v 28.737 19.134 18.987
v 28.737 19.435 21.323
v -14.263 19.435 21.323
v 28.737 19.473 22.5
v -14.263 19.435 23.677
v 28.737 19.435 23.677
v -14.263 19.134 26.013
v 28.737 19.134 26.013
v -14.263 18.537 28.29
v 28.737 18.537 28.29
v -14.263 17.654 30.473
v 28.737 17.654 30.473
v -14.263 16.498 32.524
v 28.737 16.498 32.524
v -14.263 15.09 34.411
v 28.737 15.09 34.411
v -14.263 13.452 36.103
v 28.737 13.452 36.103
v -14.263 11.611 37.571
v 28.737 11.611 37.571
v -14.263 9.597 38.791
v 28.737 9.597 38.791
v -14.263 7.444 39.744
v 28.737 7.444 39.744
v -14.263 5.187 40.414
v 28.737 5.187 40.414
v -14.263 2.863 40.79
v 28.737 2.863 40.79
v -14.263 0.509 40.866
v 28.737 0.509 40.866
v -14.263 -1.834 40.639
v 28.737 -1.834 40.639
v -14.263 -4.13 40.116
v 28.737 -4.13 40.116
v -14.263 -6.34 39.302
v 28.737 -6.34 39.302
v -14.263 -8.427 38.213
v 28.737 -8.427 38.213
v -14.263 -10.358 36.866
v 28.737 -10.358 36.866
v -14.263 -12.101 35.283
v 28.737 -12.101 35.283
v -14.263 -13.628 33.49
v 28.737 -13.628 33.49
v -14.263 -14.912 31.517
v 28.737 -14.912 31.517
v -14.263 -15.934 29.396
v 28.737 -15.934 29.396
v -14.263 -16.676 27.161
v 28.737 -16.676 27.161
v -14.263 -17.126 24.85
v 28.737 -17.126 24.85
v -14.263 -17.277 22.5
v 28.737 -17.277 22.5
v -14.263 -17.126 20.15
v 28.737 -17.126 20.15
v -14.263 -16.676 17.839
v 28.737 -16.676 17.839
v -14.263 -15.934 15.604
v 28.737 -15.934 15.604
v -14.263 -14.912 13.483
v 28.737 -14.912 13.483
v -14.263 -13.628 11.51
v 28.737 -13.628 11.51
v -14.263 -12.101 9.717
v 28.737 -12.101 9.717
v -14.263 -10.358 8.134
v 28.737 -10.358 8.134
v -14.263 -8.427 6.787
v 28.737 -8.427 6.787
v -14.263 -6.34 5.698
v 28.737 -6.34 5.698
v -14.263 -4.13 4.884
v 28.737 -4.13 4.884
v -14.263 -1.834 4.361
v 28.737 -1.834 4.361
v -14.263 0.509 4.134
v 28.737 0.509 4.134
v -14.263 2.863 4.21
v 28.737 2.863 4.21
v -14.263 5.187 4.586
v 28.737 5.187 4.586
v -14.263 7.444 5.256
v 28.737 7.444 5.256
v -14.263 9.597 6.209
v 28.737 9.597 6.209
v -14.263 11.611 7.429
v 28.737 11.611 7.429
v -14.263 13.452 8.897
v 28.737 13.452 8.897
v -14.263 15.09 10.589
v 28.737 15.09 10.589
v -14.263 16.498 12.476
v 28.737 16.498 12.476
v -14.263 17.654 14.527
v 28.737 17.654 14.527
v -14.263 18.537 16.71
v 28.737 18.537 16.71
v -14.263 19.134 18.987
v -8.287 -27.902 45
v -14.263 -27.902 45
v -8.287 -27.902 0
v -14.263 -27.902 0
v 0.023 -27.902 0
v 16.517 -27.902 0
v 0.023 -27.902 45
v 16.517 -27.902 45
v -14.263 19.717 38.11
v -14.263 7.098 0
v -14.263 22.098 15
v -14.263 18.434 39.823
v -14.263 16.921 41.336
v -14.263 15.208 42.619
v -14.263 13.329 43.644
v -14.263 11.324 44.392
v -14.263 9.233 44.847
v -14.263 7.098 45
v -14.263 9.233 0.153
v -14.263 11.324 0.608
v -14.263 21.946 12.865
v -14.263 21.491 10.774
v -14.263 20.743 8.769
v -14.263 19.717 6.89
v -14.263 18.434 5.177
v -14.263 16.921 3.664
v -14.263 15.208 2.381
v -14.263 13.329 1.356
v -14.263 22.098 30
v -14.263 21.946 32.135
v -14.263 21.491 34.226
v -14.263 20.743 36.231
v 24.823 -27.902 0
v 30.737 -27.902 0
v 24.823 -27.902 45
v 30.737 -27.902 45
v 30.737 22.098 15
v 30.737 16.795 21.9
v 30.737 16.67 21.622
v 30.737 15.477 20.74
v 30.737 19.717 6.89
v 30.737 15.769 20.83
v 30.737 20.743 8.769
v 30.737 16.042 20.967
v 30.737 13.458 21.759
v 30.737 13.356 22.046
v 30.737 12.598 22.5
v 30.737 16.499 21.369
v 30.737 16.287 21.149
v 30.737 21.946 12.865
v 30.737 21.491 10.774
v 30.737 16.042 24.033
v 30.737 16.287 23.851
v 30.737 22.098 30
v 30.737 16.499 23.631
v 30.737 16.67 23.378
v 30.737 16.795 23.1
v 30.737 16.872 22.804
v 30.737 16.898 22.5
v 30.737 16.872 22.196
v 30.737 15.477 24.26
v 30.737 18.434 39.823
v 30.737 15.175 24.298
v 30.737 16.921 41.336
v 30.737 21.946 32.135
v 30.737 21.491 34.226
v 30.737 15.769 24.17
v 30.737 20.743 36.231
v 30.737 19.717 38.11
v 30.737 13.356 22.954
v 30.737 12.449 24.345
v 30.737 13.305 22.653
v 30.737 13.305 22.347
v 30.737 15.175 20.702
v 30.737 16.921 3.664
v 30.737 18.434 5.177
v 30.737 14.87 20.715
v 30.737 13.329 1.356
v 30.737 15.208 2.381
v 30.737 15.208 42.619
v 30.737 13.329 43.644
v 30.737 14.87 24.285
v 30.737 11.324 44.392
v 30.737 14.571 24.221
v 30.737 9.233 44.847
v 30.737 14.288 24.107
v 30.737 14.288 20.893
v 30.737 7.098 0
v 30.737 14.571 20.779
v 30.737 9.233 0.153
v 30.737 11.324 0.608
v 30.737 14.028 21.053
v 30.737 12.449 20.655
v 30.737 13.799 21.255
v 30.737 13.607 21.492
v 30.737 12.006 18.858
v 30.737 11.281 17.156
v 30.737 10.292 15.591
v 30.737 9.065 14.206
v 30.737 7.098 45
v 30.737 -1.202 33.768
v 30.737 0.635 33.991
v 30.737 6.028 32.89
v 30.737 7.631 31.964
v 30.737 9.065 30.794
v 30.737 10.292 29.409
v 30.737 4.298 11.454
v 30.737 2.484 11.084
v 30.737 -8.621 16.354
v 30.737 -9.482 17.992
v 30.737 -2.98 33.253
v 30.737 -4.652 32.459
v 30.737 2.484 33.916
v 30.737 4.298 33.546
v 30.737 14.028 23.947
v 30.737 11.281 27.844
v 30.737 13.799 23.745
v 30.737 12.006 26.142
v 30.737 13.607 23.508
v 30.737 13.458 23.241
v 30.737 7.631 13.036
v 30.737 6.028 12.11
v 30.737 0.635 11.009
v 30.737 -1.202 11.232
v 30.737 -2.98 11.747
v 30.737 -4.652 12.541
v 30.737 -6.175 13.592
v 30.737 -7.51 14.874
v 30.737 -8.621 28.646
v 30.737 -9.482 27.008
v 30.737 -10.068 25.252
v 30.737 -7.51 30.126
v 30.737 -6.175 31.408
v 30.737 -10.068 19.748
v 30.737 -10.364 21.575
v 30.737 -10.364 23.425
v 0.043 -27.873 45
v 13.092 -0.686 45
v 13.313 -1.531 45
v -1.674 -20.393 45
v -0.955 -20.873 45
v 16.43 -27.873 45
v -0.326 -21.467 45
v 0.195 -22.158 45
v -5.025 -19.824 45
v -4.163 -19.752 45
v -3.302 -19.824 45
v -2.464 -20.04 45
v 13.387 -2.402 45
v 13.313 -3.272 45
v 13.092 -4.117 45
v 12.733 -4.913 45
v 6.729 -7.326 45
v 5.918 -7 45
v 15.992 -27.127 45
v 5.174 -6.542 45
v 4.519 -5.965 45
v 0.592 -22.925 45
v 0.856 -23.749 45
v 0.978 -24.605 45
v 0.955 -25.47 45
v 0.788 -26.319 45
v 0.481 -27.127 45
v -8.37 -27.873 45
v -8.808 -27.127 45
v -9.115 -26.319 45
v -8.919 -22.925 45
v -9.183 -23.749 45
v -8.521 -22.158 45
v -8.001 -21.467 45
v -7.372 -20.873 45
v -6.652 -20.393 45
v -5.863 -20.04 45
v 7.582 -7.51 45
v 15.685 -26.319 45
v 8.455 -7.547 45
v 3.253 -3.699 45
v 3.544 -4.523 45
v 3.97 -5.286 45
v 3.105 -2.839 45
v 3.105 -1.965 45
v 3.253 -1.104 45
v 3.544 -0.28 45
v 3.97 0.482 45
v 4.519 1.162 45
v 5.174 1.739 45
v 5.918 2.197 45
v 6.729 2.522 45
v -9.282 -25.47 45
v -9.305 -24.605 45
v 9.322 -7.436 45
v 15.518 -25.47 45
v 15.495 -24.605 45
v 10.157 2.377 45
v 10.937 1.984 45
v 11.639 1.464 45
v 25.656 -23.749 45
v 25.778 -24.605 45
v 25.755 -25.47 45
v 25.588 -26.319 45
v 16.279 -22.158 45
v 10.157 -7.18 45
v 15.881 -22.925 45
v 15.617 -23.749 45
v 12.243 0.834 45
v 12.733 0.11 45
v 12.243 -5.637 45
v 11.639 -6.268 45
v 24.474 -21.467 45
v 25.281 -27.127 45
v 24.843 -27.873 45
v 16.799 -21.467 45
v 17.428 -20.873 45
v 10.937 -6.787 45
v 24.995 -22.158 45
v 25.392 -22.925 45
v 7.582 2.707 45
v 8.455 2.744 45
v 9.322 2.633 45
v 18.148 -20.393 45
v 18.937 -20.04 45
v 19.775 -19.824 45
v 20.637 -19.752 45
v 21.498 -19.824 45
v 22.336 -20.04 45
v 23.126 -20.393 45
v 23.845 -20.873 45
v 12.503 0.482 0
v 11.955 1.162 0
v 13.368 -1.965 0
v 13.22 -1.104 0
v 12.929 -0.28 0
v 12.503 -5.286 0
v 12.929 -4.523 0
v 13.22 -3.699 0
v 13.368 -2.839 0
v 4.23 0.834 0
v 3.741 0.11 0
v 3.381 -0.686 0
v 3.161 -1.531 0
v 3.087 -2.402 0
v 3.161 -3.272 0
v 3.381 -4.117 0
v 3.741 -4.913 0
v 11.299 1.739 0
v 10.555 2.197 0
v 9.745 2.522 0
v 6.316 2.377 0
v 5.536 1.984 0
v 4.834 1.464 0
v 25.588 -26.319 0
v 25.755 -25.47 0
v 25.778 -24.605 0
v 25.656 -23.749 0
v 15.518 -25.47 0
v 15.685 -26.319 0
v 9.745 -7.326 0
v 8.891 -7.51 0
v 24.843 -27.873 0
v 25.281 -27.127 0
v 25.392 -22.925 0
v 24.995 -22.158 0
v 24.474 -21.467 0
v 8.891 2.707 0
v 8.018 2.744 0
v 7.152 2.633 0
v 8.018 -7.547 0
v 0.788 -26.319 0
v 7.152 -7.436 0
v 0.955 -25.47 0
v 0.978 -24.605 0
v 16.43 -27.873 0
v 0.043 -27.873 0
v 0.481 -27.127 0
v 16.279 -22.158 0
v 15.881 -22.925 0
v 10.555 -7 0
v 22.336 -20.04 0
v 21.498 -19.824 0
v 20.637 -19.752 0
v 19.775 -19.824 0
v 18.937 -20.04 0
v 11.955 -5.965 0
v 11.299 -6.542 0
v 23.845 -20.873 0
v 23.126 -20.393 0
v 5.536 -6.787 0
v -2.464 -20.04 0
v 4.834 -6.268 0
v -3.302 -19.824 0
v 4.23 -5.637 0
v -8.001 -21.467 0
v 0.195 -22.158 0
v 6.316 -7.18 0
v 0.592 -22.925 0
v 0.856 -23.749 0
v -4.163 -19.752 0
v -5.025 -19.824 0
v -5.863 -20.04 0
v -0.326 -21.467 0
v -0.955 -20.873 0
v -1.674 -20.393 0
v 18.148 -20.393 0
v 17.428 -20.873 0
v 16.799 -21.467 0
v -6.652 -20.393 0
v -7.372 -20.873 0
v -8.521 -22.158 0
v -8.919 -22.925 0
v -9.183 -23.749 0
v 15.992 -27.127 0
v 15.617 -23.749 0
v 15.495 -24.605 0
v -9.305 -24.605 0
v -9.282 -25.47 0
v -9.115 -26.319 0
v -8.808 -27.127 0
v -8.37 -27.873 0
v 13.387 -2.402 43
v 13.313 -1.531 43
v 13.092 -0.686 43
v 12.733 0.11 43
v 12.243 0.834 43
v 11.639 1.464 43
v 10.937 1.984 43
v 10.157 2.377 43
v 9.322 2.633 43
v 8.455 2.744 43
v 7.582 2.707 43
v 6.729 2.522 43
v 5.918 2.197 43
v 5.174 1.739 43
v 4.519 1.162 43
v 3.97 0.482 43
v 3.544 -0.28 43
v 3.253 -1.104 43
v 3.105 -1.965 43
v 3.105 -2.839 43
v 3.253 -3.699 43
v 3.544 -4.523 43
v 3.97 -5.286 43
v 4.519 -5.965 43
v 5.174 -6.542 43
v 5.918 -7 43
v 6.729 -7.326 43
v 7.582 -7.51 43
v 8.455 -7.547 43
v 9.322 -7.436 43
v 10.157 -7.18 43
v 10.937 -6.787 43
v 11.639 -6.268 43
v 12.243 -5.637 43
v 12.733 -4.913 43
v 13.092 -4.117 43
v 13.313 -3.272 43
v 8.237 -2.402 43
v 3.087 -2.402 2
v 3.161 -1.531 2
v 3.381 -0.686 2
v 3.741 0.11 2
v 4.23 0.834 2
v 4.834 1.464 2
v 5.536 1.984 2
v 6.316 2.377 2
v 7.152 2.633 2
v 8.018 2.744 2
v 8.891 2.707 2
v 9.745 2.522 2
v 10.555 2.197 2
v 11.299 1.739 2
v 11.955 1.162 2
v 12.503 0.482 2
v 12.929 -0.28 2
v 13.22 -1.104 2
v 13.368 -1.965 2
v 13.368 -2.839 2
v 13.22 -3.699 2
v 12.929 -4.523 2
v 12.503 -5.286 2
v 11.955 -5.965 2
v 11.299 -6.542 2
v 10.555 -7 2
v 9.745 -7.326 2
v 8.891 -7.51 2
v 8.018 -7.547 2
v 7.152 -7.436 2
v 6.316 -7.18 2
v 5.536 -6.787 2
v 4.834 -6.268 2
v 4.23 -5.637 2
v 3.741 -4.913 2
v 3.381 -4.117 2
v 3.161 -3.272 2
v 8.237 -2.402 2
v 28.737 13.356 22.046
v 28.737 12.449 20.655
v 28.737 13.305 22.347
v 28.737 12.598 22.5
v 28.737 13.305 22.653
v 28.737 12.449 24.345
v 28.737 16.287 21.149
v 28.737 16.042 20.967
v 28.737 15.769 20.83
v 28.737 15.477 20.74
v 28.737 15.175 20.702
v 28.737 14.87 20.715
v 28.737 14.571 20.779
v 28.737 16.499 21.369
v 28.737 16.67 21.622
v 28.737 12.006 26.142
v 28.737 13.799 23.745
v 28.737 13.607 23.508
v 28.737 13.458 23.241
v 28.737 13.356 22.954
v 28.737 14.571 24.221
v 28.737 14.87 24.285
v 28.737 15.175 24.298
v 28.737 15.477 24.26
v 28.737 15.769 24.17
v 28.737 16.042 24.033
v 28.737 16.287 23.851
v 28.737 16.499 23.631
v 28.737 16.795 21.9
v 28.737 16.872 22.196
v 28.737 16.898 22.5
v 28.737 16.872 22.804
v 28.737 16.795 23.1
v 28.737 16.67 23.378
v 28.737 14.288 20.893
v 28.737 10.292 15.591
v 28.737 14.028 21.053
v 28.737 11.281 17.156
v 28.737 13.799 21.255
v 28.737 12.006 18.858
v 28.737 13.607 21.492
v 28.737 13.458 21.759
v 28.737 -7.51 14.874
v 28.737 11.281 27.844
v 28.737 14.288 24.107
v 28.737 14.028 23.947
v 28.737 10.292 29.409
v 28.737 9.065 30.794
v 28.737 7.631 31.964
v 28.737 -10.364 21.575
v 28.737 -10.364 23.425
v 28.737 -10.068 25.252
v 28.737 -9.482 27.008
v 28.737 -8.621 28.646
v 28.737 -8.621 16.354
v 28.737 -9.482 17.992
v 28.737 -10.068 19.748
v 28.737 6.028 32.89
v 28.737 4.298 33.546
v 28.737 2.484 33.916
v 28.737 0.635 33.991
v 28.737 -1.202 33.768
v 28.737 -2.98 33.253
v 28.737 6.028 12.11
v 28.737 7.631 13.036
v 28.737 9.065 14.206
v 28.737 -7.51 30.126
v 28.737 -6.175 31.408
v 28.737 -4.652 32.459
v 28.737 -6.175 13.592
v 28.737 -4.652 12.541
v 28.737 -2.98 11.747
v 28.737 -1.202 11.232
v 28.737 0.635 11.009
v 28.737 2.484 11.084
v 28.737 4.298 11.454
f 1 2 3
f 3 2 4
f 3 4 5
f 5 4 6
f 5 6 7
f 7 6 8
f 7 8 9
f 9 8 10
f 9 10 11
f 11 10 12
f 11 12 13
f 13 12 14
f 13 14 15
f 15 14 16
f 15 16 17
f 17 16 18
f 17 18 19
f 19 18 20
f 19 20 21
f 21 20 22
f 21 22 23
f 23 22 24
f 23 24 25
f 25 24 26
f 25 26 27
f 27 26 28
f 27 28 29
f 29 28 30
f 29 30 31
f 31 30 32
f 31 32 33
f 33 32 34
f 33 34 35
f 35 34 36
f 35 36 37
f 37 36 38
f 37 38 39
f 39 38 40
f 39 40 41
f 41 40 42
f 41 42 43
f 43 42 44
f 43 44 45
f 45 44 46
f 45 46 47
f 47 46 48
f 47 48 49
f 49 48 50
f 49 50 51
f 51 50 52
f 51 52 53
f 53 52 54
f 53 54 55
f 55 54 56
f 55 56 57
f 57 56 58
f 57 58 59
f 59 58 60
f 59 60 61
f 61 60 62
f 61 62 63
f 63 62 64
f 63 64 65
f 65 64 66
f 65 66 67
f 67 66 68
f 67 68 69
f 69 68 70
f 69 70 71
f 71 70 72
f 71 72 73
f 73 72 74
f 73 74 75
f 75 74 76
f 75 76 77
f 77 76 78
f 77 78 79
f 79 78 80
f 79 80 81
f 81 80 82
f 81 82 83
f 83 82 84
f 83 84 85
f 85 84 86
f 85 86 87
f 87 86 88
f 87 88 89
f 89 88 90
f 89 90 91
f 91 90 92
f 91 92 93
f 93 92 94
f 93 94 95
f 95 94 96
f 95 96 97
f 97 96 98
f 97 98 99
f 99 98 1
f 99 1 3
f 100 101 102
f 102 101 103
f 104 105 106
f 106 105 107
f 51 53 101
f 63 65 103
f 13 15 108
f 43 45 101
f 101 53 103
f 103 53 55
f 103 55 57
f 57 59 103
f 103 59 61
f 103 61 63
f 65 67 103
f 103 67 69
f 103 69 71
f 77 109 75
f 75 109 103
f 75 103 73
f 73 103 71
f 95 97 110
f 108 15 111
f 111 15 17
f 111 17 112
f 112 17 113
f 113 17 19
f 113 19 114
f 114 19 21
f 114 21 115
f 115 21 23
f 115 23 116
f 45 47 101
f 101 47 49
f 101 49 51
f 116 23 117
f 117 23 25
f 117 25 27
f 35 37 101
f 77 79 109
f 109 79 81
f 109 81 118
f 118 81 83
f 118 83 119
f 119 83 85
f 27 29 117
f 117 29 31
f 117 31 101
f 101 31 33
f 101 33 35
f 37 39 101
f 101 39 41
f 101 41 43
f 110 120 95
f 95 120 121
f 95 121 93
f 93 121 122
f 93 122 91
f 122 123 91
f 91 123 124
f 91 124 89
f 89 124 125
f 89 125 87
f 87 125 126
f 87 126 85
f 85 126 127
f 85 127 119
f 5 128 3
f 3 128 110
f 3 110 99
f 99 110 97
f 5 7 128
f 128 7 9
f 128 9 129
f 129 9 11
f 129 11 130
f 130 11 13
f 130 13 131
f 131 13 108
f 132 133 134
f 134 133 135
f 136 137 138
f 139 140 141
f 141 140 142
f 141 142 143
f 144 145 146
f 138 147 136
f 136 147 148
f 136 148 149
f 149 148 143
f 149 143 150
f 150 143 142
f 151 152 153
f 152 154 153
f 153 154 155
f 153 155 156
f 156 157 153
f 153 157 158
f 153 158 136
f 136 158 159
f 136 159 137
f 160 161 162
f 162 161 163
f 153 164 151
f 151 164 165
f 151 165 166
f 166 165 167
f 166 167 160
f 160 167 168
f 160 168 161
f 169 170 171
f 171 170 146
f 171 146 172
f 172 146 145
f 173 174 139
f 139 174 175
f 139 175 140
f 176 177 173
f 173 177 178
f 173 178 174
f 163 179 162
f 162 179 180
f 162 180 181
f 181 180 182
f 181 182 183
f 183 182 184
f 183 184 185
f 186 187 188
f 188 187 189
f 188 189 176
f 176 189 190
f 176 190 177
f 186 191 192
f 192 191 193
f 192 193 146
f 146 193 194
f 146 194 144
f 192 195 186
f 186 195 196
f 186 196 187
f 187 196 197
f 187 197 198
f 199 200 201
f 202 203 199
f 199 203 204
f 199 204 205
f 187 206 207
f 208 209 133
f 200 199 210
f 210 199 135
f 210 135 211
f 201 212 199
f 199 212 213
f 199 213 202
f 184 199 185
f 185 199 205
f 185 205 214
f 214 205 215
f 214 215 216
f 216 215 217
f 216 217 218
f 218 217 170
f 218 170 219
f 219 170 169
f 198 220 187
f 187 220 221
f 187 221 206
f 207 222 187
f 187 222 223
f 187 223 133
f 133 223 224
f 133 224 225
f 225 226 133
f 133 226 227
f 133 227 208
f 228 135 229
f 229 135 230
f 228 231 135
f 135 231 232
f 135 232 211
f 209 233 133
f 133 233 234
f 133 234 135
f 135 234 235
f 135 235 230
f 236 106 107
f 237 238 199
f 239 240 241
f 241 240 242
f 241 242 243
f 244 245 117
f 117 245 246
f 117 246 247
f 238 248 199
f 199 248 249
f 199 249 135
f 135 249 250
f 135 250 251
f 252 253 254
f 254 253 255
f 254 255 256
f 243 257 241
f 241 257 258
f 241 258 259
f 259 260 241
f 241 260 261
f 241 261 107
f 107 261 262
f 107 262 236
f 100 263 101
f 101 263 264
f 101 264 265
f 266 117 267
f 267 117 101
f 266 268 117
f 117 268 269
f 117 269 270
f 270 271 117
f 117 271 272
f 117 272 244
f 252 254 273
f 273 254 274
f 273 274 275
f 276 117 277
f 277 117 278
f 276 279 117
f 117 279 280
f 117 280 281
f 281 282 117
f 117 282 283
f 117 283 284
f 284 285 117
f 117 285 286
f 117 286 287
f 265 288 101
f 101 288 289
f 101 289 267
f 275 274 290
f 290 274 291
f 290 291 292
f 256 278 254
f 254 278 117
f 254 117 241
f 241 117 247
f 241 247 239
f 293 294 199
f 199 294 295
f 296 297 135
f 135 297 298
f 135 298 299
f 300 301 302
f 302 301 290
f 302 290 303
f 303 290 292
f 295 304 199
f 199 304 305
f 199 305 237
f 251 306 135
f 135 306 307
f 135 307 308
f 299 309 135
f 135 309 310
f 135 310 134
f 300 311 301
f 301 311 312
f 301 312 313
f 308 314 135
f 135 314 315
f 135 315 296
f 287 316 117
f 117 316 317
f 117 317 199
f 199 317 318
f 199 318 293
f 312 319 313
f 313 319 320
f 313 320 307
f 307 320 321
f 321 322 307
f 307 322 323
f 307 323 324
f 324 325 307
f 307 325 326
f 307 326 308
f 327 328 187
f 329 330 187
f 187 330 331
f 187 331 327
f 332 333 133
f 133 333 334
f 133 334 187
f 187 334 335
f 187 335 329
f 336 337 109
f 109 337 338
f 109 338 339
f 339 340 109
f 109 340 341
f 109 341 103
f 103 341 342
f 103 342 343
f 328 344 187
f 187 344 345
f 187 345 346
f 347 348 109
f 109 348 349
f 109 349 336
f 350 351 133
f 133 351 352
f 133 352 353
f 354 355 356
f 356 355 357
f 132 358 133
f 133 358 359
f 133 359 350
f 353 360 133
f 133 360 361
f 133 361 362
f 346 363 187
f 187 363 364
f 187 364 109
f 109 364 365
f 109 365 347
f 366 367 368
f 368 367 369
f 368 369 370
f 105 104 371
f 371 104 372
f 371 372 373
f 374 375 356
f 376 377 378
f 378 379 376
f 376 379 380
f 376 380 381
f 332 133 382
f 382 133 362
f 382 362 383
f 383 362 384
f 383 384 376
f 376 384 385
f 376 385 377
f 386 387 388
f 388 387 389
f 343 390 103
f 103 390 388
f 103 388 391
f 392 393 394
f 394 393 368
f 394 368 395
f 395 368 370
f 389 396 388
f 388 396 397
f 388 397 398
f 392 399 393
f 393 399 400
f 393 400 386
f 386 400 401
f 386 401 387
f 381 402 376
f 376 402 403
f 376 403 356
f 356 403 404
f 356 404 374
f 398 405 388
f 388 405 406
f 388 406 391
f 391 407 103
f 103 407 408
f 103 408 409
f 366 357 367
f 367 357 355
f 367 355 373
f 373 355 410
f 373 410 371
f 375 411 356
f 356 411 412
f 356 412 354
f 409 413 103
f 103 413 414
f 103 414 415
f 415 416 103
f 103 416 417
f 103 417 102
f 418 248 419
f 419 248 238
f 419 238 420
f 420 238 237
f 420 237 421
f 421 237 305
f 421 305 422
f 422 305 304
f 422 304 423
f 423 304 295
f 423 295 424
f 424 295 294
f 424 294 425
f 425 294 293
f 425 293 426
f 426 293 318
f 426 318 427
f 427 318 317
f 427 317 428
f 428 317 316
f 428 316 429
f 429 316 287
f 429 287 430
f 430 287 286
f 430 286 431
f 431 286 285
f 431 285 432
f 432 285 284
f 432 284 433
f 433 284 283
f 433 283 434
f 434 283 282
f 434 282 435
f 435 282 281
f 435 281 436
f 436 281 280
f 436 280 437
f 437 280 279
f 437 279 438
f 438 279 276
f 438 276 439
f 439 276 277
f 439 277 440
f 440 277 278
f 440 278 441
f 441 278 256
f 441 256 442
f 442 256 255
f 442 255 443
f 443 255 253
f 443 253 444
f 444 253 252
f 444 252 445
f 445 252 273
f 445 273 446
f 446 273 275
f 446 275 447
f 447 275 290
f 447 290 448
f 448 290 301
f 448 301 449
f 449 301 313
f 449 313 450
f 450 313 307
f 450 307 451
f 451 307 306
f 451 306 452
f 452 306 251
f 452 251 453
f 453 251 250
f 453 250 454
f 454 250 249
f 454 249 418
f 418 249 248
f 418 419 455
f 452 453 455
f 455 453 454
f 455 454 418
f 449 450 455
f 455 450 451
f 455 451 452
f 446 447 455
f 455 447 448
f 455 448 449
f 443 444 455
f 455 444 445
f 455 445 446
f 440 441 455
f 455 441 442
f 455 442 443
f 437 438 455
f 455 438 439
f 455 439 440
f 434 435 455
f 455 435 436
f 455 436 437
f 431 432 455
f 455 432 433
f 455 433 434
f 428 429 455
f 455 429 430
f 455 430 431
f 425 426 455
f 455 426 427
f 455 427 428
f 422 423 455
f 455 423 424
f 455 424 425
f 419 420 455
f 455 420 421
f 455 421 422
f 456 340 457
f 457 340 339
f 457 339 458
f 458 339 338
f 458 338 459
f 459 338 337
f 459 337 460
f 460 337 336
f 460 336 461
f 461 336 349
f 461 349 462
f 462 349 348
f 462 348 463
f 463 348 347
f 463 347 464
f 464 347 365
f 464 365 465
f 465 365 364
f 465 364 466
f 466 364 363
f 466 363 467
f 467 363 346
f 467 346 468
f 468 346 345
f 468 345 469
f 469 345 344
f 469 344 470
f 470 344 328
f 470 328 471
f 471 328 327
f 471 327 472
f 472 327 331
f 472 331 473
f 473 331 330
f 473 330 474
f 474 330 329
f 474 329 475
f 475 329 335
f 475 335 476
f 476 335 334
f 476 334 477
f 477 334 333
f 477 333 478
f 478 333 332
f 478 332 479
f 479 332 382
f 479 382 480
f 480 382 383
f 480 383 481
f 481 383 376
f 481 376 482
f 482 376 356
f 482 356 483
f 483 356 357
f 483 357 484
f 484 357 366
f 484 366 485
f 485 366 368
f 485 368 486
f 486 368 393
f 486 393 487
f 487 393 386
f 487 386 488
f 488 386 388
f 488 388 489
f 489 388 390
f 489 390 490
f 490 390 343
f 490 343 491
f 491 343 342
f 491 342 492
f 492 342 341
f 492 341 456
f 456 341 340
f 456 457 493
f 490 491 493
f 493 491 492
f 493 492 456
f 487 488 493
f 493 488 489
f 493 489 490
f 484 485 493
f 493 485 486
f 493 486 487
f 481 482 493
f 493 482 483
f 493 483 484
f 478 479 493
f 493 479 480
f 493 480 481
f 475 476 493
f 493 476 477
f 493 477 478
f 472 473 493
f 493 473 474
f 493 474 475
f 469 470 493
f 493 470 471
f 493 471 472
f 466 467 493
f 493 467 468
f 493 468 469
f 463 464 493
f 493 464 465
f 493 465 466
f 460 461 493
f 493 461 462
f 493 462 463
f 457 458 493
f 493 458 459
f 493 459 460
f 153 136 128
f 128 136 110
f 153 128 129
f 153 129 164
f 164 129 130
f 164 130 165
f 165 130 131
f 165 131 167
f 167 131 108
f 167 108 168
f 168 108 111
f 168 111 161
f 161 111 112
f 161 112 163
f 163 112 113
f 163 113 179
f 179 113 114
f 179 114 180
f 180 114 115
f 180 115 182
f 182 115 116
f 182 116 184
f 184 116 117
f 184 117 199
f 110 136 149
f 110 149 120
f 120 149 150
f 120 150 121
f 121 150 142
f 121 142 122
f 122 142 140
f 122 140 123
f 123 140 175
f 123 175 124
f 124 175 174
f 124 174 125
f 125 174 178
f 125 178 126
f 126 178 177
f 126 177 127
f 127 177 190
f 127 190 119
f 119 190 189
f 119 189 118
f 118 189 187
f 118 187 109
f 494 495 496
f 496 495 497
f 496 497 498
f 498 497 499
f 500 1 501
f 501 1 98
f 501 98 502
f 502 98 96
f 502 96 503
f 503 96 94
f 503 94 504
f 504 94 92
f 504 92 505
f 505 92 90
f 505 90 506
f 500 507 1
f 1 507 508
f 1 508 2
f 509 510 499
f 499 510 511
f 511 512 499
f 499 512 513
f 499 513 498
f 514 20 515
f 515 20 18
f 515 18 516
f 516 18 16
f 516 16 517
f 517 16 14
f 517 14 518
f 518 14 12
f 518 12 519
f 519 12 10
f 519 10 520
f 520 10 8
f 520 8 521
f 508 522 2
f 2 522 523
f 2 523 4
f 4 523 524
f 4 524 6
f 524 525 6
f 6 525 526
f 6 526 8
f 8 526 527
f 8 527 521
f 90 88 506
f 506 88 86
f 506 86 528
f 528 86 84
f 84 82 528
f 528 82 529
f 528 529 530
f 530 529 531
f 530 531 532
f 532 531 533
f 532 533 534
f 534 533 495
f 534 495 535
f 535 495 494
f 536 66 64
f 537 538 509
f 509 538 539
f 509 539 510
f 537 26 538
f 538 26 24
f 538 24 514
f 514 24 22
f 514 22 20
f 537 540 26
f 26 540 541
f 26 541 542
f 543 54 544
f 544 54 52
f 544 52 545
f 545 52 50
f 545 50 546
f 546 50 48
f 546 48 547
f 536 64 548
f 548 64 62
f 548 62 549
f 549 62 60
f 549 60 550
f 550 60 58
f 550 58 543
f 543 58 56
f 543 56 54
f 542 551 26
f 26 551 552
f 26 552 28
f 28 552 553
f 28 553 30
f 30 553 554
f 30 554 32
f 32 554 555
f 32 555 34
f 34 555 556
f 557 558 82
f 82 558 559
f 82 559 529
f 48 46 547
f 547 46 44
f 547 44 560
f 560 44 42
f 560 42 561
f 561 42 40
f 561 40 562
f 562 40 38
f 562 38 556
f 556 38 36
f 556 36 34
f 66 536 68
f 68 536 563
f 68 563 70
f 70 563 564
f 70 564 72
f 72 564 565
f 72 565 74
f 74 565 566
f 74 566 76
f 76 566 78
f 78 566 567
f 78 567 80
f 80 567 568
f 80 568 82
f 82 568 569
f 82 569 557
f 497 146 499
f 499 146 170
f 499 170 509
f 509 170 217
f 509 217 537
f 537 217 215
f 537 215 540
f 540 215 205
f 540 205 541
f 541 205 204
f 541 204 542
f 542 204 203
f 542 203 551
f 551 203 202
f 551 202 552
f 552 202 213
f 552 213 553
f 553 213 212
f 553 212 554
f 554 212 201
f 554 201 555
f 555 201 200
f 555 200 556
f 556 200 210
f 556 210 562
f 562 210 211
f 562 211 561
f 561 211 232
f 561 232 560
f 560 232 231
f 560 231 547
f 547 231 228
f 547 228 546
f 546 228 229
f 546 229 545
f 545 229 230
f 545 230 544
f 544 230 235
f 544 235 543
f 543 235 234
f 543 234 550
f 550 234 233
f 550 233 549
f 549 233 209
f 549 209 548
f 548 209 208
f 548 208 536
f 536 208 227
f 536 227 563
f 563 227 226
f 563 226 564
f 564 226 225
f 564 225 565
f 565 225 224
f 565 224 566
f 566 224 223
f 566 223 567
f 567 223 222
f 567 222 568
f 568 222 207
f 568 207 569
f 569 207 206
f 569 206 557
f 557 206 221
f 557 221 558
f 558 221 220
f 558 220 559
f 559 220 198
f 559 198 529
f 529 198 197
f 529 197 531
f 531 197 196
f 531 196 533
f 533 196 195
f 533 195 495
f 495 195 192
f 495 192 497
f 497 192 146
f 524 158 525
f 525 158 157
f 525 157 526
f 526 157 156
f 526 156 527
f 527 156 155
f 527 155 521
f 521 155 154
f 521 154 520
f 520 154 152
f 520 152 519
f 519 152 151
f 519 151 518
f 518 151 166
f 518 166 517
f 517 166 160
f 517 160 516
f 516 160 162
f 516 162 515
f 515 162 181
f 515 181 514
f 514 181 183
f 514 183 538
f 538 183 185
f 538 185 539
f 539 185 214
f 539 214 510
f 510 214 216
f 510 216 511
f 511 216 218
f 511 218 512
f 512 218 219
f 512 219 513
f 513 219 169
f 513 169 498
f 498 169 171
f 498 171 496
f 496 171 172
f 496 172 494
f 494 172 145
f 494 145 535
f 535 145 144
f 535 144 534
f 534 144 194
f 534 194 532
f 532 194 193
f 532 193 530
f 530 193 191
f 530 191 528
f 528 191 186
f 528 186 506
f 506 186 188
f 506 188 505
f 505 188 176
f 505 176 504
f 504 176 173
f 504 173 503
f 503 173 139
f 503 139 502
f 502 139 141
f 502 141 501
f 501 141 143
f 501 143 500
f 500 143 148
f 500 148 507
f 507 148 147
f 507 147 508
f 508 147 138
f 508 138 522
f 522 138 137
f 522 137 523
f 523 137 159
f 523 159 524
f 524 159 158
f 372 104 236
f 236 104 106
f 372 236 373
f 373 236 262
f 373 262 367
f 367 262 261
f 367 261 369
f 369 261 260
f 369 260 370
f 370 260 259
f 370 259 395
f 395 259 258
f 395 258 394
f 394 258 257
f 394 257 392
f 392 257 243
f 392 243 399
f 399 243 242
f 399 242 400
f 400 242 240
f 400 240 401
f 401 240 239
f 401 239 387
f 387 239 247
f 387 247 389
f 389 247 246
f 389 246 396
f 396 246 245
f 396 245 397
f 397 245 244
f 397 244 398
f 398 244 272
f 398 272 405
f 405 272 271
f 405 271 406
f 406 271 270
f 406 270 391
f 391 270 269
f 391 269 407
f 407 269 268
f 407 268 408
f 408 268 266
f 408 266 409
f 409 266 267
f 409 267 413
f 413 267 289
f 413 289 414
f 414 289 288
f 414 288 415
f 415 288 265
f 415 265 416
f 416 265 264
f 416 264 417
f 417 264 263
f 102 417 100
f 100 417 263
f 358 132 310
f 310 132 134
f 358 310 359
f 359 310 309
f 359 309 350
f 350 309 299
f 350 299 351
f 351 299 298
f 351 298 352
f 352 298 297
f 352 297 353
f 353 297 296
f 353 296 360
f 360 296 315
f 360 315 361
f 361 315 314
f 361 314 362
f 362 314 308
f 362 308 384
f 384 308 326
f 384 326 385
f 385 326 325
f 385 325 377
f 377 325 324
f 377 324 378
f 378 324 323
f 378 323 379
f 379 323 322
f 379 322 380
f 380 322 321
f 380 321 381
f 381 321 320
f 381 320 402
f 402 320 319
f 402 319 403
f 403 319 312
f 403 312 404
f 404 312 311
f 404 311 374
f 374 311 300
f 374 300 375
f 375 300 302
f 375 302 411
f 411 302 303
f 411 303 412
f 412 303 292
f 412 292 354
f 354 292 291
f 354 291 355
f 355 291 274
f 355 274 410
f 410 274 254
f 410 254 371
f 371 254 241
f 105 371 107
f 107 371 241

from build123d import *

# Parameters (mm, degrees)
SKETCH1_W           = 45
SKETCH1_H           = 50
BOSS_EXTRUDE1_DEPTH = 45
SKETCH2_R           = 5.2
CUT_EXTRUDE1_DEPTH  = 45
SKETCH9_R           = 5.15
CUT_EXTRUDE6_DEPTH  = 2
SKETCH10_R          = 5.15
CUT_EXTRUDE7_DEPTH  = 2
SKETCH12_R          = 18.375
CUT_EXTRUDE8_DEPTH  = 45
SKETCH13_W          = 45
SKETCH13_H          = 6.66747138
CUT_EXTRUDE9_DEPTH  = 46
SKETCH14_W          = 45
SKETCH14_H          = 6.66747138
BOSS_EXTRUDE2_DEPTH = 45
SKETCH15_R          = 18.375
CUT_EXTRUDE10_DEPTH = 45
FILLET1_R           = 15
SKETCH16_R          = 18.375
BOSS_EXTRUDE3_DEPTH = 2
SKETCH17_R          = 11.5
CUT_EXTRUDE11_DEPTH = 2
SKETCH18_R          = 1.8
CUT_EXTRUDE12_DEPTH = 2
BOSS_EXTRUDE4_DEPTH = 45


with BuildPart() as part:
    # Sketch1 → Boss-Extrude1 (new body)
    with BuildSketch(Plane.XY):
        with Locations((8.236607143, -2.901785714)):
            Rectangle(SKETCH1_W, SKETCH1_H)
    extrude(amount=BOSS_EXTRUDE1_DEPTH)

    # Sketch2 → Cut-Extrude1 (cut)
    with BuildSketch(Plane.XY.offset(45)):
        with Locations((-4.163392857, -24.901785714)):
            Circle(SKETCH2_R)
        with Locations((20.636607143, -24.901785714)):
            Circle(SKETCH2_R)
    extrude(amount=-CUT_EXTRUDE1_DEPTH, mode=Mode.SUBTRACT)

    # Sketch9 → Cut-Extrude6 (cut)
    with BuildSketch(Plane.XY.offset(45)):
        with Locations((8.236607143, -2.401785714)):
            Circle(SKETCH9_R)
    extrude(amount=-CUT_EXTRUDE6_DEPTH, mode=Mode.SUBTRACT)

    # Sketch10 → Cut-Extrude7 (cut)
    with BuildSketch(Plane(origin=(0, 0, 0), x_dir=(-1, 0, 0), z_dir=(0, 0, -1))):
        with Locations((-8.236607143, -2.401785714)):
            Circle(SKETCH10_R)
    extrude(amount=-CUT_EXTRUDE7_DEPTH, mode=Mode.SUBTRACT)

    # Sketch12 → Cut-Extrude8 (cut)
    with BuildSketch(Plane.ZY.offset(14.263392857)):
        with Locations((22.5, 1.098214286)):
            Circle(SKETCH12_R)
    extrude(amount=-CUT_EXTRUDE8_DEPTH, mode=Mode.SUBTRACT)

    # Sketch13 → Cut-Extrude9 (cut)
    with BuildSketch(Plane.ZY.offset(14.263392857)):
        with Locations((22.5, 18.764478596)):
            Rectangle(SKETCH13_W, SKETCH13_H)
    extrude(amount=-CUT_EXTRUDE9_DEPTH, mode=Mode.SUBTRACT)

    # Sketch14 → Boss-Extrude2 (add)
    with BuildSketch(Plane.ZY.offset(14.263392857)):
        with Locations((22.5, 18.764478596)):
            Rectangle(SKETCH14_W, SKETCH14_H)
    extrude(amount=-BOSS_EXTRUDE2_DEPTH)

    # Sketch15 → Cut-Extrude10 (cut)
    with BuildSketch(Plane.ZY.offset(14.263392857)):
        with Locations((22.5, 1.098214286)):
            Circle(SKETCH15_R)
    extrude(amount=-CUT_EXTRUDE10_DEPTH, mode=Mode.SUBTRACT)

    # Fillet1
    fillet1_edges = [part.edges().sort_by_distance(p)[0] for p in [
        (8.236607143, 22.098214286, 0),
        (8.236607143, 22.098214286, 45),
    ]]
    fillet(fillet1_edges, radius=FILLET1_R)

    # Sketch16 → Boss-Extrude3 (add)
    with BuildSketch(Plane(origin=(30.736607143, 0, 0), x_dir=(0, 0, -1), z_dir=(1, 0, 0))):
        with Locations((-22.5, 1.098214286)):
            Circle(SKETCH16_R)
    extrude(amount=-BOSS_EXTRUDE3_DEPTH)

    # Sketch17 → Cut-Extrude11 (cut)
    with BuildSketch(Plane(origin=(30.736607143, 0, 0), x_dir=(0, 0, -1), z_dir=(1, 0, 0))):
        with Locations((-22.5, 1.098214286)):
            Circle(SKETCH17_R)
    extrude(amount=-CUT_EXTRUDE11_DEPTH, mode=Mode.SUBTRACT)

    # Sketch18 → Cut-Extrude12 (cut)
    with BuildSketch(Plane(origin=(30.736607143, 0, 0), x_dir=(0, 0, -1), z_dir=(1, 0, 0))):
        with Locations((-22.5, 15.098214286)):
            Circle(SKETCH18_R)
    extrude(amount=-CUT_EXTRUDE12_DEPTH, mode=Mode.SUBTRACT)

    # Sketch19 → Boss-Extrude4 (add)
    with BuildSketch(Plane.XY.offset(45)):
        with BuildLine():
            Line((0.043119335, -27.87293956), (0.02274465, -27.901785714))
            Line((0.02274465, -27.901785714), (0.083959259, -27.901785714))
            ThreePointArc((0.083959259, -27.901785714), (-4.163392857, -19.701785714), (-8.410744973, -27.901785714))
            Line((-8.410744973, -27.901785714), (-8.286832824, -27.901785714))
            Line((-8.286832824, -27.901785714), (-8.369905049, -27.87293956))
            ThreePointArc((-8.369905049, -27.87293956), (-4.163392857, -19.751785714), (0.043119335, -27.87293956))
        make_face()
        with BuildLine():
            Line((16.430094951, -27.87293956), (16.516624547, -27.901785714))
            Line((16.516624547, -27.901785714), (16.389255027, -27.901785714))
            ThreePointArc((16.389255027, -27.901785714), (20.636607143, -19.701785714), (24.883959259, -27.901785714))
            Line((24.883959259, -27.901785714), (24.82274465, -27.901785714))
            Line((24.82274465, -27.901785714), (24.843119335, -27.87293956))
            ThreePointArc((24.843119335, -27.87293956), (20.636607143, -19.751785714), (16.430094951, -27.87293956))
        make_face()
    extrude(amount=-BOSS_EXTRUDE4_DEPTH)


solid = part.part
